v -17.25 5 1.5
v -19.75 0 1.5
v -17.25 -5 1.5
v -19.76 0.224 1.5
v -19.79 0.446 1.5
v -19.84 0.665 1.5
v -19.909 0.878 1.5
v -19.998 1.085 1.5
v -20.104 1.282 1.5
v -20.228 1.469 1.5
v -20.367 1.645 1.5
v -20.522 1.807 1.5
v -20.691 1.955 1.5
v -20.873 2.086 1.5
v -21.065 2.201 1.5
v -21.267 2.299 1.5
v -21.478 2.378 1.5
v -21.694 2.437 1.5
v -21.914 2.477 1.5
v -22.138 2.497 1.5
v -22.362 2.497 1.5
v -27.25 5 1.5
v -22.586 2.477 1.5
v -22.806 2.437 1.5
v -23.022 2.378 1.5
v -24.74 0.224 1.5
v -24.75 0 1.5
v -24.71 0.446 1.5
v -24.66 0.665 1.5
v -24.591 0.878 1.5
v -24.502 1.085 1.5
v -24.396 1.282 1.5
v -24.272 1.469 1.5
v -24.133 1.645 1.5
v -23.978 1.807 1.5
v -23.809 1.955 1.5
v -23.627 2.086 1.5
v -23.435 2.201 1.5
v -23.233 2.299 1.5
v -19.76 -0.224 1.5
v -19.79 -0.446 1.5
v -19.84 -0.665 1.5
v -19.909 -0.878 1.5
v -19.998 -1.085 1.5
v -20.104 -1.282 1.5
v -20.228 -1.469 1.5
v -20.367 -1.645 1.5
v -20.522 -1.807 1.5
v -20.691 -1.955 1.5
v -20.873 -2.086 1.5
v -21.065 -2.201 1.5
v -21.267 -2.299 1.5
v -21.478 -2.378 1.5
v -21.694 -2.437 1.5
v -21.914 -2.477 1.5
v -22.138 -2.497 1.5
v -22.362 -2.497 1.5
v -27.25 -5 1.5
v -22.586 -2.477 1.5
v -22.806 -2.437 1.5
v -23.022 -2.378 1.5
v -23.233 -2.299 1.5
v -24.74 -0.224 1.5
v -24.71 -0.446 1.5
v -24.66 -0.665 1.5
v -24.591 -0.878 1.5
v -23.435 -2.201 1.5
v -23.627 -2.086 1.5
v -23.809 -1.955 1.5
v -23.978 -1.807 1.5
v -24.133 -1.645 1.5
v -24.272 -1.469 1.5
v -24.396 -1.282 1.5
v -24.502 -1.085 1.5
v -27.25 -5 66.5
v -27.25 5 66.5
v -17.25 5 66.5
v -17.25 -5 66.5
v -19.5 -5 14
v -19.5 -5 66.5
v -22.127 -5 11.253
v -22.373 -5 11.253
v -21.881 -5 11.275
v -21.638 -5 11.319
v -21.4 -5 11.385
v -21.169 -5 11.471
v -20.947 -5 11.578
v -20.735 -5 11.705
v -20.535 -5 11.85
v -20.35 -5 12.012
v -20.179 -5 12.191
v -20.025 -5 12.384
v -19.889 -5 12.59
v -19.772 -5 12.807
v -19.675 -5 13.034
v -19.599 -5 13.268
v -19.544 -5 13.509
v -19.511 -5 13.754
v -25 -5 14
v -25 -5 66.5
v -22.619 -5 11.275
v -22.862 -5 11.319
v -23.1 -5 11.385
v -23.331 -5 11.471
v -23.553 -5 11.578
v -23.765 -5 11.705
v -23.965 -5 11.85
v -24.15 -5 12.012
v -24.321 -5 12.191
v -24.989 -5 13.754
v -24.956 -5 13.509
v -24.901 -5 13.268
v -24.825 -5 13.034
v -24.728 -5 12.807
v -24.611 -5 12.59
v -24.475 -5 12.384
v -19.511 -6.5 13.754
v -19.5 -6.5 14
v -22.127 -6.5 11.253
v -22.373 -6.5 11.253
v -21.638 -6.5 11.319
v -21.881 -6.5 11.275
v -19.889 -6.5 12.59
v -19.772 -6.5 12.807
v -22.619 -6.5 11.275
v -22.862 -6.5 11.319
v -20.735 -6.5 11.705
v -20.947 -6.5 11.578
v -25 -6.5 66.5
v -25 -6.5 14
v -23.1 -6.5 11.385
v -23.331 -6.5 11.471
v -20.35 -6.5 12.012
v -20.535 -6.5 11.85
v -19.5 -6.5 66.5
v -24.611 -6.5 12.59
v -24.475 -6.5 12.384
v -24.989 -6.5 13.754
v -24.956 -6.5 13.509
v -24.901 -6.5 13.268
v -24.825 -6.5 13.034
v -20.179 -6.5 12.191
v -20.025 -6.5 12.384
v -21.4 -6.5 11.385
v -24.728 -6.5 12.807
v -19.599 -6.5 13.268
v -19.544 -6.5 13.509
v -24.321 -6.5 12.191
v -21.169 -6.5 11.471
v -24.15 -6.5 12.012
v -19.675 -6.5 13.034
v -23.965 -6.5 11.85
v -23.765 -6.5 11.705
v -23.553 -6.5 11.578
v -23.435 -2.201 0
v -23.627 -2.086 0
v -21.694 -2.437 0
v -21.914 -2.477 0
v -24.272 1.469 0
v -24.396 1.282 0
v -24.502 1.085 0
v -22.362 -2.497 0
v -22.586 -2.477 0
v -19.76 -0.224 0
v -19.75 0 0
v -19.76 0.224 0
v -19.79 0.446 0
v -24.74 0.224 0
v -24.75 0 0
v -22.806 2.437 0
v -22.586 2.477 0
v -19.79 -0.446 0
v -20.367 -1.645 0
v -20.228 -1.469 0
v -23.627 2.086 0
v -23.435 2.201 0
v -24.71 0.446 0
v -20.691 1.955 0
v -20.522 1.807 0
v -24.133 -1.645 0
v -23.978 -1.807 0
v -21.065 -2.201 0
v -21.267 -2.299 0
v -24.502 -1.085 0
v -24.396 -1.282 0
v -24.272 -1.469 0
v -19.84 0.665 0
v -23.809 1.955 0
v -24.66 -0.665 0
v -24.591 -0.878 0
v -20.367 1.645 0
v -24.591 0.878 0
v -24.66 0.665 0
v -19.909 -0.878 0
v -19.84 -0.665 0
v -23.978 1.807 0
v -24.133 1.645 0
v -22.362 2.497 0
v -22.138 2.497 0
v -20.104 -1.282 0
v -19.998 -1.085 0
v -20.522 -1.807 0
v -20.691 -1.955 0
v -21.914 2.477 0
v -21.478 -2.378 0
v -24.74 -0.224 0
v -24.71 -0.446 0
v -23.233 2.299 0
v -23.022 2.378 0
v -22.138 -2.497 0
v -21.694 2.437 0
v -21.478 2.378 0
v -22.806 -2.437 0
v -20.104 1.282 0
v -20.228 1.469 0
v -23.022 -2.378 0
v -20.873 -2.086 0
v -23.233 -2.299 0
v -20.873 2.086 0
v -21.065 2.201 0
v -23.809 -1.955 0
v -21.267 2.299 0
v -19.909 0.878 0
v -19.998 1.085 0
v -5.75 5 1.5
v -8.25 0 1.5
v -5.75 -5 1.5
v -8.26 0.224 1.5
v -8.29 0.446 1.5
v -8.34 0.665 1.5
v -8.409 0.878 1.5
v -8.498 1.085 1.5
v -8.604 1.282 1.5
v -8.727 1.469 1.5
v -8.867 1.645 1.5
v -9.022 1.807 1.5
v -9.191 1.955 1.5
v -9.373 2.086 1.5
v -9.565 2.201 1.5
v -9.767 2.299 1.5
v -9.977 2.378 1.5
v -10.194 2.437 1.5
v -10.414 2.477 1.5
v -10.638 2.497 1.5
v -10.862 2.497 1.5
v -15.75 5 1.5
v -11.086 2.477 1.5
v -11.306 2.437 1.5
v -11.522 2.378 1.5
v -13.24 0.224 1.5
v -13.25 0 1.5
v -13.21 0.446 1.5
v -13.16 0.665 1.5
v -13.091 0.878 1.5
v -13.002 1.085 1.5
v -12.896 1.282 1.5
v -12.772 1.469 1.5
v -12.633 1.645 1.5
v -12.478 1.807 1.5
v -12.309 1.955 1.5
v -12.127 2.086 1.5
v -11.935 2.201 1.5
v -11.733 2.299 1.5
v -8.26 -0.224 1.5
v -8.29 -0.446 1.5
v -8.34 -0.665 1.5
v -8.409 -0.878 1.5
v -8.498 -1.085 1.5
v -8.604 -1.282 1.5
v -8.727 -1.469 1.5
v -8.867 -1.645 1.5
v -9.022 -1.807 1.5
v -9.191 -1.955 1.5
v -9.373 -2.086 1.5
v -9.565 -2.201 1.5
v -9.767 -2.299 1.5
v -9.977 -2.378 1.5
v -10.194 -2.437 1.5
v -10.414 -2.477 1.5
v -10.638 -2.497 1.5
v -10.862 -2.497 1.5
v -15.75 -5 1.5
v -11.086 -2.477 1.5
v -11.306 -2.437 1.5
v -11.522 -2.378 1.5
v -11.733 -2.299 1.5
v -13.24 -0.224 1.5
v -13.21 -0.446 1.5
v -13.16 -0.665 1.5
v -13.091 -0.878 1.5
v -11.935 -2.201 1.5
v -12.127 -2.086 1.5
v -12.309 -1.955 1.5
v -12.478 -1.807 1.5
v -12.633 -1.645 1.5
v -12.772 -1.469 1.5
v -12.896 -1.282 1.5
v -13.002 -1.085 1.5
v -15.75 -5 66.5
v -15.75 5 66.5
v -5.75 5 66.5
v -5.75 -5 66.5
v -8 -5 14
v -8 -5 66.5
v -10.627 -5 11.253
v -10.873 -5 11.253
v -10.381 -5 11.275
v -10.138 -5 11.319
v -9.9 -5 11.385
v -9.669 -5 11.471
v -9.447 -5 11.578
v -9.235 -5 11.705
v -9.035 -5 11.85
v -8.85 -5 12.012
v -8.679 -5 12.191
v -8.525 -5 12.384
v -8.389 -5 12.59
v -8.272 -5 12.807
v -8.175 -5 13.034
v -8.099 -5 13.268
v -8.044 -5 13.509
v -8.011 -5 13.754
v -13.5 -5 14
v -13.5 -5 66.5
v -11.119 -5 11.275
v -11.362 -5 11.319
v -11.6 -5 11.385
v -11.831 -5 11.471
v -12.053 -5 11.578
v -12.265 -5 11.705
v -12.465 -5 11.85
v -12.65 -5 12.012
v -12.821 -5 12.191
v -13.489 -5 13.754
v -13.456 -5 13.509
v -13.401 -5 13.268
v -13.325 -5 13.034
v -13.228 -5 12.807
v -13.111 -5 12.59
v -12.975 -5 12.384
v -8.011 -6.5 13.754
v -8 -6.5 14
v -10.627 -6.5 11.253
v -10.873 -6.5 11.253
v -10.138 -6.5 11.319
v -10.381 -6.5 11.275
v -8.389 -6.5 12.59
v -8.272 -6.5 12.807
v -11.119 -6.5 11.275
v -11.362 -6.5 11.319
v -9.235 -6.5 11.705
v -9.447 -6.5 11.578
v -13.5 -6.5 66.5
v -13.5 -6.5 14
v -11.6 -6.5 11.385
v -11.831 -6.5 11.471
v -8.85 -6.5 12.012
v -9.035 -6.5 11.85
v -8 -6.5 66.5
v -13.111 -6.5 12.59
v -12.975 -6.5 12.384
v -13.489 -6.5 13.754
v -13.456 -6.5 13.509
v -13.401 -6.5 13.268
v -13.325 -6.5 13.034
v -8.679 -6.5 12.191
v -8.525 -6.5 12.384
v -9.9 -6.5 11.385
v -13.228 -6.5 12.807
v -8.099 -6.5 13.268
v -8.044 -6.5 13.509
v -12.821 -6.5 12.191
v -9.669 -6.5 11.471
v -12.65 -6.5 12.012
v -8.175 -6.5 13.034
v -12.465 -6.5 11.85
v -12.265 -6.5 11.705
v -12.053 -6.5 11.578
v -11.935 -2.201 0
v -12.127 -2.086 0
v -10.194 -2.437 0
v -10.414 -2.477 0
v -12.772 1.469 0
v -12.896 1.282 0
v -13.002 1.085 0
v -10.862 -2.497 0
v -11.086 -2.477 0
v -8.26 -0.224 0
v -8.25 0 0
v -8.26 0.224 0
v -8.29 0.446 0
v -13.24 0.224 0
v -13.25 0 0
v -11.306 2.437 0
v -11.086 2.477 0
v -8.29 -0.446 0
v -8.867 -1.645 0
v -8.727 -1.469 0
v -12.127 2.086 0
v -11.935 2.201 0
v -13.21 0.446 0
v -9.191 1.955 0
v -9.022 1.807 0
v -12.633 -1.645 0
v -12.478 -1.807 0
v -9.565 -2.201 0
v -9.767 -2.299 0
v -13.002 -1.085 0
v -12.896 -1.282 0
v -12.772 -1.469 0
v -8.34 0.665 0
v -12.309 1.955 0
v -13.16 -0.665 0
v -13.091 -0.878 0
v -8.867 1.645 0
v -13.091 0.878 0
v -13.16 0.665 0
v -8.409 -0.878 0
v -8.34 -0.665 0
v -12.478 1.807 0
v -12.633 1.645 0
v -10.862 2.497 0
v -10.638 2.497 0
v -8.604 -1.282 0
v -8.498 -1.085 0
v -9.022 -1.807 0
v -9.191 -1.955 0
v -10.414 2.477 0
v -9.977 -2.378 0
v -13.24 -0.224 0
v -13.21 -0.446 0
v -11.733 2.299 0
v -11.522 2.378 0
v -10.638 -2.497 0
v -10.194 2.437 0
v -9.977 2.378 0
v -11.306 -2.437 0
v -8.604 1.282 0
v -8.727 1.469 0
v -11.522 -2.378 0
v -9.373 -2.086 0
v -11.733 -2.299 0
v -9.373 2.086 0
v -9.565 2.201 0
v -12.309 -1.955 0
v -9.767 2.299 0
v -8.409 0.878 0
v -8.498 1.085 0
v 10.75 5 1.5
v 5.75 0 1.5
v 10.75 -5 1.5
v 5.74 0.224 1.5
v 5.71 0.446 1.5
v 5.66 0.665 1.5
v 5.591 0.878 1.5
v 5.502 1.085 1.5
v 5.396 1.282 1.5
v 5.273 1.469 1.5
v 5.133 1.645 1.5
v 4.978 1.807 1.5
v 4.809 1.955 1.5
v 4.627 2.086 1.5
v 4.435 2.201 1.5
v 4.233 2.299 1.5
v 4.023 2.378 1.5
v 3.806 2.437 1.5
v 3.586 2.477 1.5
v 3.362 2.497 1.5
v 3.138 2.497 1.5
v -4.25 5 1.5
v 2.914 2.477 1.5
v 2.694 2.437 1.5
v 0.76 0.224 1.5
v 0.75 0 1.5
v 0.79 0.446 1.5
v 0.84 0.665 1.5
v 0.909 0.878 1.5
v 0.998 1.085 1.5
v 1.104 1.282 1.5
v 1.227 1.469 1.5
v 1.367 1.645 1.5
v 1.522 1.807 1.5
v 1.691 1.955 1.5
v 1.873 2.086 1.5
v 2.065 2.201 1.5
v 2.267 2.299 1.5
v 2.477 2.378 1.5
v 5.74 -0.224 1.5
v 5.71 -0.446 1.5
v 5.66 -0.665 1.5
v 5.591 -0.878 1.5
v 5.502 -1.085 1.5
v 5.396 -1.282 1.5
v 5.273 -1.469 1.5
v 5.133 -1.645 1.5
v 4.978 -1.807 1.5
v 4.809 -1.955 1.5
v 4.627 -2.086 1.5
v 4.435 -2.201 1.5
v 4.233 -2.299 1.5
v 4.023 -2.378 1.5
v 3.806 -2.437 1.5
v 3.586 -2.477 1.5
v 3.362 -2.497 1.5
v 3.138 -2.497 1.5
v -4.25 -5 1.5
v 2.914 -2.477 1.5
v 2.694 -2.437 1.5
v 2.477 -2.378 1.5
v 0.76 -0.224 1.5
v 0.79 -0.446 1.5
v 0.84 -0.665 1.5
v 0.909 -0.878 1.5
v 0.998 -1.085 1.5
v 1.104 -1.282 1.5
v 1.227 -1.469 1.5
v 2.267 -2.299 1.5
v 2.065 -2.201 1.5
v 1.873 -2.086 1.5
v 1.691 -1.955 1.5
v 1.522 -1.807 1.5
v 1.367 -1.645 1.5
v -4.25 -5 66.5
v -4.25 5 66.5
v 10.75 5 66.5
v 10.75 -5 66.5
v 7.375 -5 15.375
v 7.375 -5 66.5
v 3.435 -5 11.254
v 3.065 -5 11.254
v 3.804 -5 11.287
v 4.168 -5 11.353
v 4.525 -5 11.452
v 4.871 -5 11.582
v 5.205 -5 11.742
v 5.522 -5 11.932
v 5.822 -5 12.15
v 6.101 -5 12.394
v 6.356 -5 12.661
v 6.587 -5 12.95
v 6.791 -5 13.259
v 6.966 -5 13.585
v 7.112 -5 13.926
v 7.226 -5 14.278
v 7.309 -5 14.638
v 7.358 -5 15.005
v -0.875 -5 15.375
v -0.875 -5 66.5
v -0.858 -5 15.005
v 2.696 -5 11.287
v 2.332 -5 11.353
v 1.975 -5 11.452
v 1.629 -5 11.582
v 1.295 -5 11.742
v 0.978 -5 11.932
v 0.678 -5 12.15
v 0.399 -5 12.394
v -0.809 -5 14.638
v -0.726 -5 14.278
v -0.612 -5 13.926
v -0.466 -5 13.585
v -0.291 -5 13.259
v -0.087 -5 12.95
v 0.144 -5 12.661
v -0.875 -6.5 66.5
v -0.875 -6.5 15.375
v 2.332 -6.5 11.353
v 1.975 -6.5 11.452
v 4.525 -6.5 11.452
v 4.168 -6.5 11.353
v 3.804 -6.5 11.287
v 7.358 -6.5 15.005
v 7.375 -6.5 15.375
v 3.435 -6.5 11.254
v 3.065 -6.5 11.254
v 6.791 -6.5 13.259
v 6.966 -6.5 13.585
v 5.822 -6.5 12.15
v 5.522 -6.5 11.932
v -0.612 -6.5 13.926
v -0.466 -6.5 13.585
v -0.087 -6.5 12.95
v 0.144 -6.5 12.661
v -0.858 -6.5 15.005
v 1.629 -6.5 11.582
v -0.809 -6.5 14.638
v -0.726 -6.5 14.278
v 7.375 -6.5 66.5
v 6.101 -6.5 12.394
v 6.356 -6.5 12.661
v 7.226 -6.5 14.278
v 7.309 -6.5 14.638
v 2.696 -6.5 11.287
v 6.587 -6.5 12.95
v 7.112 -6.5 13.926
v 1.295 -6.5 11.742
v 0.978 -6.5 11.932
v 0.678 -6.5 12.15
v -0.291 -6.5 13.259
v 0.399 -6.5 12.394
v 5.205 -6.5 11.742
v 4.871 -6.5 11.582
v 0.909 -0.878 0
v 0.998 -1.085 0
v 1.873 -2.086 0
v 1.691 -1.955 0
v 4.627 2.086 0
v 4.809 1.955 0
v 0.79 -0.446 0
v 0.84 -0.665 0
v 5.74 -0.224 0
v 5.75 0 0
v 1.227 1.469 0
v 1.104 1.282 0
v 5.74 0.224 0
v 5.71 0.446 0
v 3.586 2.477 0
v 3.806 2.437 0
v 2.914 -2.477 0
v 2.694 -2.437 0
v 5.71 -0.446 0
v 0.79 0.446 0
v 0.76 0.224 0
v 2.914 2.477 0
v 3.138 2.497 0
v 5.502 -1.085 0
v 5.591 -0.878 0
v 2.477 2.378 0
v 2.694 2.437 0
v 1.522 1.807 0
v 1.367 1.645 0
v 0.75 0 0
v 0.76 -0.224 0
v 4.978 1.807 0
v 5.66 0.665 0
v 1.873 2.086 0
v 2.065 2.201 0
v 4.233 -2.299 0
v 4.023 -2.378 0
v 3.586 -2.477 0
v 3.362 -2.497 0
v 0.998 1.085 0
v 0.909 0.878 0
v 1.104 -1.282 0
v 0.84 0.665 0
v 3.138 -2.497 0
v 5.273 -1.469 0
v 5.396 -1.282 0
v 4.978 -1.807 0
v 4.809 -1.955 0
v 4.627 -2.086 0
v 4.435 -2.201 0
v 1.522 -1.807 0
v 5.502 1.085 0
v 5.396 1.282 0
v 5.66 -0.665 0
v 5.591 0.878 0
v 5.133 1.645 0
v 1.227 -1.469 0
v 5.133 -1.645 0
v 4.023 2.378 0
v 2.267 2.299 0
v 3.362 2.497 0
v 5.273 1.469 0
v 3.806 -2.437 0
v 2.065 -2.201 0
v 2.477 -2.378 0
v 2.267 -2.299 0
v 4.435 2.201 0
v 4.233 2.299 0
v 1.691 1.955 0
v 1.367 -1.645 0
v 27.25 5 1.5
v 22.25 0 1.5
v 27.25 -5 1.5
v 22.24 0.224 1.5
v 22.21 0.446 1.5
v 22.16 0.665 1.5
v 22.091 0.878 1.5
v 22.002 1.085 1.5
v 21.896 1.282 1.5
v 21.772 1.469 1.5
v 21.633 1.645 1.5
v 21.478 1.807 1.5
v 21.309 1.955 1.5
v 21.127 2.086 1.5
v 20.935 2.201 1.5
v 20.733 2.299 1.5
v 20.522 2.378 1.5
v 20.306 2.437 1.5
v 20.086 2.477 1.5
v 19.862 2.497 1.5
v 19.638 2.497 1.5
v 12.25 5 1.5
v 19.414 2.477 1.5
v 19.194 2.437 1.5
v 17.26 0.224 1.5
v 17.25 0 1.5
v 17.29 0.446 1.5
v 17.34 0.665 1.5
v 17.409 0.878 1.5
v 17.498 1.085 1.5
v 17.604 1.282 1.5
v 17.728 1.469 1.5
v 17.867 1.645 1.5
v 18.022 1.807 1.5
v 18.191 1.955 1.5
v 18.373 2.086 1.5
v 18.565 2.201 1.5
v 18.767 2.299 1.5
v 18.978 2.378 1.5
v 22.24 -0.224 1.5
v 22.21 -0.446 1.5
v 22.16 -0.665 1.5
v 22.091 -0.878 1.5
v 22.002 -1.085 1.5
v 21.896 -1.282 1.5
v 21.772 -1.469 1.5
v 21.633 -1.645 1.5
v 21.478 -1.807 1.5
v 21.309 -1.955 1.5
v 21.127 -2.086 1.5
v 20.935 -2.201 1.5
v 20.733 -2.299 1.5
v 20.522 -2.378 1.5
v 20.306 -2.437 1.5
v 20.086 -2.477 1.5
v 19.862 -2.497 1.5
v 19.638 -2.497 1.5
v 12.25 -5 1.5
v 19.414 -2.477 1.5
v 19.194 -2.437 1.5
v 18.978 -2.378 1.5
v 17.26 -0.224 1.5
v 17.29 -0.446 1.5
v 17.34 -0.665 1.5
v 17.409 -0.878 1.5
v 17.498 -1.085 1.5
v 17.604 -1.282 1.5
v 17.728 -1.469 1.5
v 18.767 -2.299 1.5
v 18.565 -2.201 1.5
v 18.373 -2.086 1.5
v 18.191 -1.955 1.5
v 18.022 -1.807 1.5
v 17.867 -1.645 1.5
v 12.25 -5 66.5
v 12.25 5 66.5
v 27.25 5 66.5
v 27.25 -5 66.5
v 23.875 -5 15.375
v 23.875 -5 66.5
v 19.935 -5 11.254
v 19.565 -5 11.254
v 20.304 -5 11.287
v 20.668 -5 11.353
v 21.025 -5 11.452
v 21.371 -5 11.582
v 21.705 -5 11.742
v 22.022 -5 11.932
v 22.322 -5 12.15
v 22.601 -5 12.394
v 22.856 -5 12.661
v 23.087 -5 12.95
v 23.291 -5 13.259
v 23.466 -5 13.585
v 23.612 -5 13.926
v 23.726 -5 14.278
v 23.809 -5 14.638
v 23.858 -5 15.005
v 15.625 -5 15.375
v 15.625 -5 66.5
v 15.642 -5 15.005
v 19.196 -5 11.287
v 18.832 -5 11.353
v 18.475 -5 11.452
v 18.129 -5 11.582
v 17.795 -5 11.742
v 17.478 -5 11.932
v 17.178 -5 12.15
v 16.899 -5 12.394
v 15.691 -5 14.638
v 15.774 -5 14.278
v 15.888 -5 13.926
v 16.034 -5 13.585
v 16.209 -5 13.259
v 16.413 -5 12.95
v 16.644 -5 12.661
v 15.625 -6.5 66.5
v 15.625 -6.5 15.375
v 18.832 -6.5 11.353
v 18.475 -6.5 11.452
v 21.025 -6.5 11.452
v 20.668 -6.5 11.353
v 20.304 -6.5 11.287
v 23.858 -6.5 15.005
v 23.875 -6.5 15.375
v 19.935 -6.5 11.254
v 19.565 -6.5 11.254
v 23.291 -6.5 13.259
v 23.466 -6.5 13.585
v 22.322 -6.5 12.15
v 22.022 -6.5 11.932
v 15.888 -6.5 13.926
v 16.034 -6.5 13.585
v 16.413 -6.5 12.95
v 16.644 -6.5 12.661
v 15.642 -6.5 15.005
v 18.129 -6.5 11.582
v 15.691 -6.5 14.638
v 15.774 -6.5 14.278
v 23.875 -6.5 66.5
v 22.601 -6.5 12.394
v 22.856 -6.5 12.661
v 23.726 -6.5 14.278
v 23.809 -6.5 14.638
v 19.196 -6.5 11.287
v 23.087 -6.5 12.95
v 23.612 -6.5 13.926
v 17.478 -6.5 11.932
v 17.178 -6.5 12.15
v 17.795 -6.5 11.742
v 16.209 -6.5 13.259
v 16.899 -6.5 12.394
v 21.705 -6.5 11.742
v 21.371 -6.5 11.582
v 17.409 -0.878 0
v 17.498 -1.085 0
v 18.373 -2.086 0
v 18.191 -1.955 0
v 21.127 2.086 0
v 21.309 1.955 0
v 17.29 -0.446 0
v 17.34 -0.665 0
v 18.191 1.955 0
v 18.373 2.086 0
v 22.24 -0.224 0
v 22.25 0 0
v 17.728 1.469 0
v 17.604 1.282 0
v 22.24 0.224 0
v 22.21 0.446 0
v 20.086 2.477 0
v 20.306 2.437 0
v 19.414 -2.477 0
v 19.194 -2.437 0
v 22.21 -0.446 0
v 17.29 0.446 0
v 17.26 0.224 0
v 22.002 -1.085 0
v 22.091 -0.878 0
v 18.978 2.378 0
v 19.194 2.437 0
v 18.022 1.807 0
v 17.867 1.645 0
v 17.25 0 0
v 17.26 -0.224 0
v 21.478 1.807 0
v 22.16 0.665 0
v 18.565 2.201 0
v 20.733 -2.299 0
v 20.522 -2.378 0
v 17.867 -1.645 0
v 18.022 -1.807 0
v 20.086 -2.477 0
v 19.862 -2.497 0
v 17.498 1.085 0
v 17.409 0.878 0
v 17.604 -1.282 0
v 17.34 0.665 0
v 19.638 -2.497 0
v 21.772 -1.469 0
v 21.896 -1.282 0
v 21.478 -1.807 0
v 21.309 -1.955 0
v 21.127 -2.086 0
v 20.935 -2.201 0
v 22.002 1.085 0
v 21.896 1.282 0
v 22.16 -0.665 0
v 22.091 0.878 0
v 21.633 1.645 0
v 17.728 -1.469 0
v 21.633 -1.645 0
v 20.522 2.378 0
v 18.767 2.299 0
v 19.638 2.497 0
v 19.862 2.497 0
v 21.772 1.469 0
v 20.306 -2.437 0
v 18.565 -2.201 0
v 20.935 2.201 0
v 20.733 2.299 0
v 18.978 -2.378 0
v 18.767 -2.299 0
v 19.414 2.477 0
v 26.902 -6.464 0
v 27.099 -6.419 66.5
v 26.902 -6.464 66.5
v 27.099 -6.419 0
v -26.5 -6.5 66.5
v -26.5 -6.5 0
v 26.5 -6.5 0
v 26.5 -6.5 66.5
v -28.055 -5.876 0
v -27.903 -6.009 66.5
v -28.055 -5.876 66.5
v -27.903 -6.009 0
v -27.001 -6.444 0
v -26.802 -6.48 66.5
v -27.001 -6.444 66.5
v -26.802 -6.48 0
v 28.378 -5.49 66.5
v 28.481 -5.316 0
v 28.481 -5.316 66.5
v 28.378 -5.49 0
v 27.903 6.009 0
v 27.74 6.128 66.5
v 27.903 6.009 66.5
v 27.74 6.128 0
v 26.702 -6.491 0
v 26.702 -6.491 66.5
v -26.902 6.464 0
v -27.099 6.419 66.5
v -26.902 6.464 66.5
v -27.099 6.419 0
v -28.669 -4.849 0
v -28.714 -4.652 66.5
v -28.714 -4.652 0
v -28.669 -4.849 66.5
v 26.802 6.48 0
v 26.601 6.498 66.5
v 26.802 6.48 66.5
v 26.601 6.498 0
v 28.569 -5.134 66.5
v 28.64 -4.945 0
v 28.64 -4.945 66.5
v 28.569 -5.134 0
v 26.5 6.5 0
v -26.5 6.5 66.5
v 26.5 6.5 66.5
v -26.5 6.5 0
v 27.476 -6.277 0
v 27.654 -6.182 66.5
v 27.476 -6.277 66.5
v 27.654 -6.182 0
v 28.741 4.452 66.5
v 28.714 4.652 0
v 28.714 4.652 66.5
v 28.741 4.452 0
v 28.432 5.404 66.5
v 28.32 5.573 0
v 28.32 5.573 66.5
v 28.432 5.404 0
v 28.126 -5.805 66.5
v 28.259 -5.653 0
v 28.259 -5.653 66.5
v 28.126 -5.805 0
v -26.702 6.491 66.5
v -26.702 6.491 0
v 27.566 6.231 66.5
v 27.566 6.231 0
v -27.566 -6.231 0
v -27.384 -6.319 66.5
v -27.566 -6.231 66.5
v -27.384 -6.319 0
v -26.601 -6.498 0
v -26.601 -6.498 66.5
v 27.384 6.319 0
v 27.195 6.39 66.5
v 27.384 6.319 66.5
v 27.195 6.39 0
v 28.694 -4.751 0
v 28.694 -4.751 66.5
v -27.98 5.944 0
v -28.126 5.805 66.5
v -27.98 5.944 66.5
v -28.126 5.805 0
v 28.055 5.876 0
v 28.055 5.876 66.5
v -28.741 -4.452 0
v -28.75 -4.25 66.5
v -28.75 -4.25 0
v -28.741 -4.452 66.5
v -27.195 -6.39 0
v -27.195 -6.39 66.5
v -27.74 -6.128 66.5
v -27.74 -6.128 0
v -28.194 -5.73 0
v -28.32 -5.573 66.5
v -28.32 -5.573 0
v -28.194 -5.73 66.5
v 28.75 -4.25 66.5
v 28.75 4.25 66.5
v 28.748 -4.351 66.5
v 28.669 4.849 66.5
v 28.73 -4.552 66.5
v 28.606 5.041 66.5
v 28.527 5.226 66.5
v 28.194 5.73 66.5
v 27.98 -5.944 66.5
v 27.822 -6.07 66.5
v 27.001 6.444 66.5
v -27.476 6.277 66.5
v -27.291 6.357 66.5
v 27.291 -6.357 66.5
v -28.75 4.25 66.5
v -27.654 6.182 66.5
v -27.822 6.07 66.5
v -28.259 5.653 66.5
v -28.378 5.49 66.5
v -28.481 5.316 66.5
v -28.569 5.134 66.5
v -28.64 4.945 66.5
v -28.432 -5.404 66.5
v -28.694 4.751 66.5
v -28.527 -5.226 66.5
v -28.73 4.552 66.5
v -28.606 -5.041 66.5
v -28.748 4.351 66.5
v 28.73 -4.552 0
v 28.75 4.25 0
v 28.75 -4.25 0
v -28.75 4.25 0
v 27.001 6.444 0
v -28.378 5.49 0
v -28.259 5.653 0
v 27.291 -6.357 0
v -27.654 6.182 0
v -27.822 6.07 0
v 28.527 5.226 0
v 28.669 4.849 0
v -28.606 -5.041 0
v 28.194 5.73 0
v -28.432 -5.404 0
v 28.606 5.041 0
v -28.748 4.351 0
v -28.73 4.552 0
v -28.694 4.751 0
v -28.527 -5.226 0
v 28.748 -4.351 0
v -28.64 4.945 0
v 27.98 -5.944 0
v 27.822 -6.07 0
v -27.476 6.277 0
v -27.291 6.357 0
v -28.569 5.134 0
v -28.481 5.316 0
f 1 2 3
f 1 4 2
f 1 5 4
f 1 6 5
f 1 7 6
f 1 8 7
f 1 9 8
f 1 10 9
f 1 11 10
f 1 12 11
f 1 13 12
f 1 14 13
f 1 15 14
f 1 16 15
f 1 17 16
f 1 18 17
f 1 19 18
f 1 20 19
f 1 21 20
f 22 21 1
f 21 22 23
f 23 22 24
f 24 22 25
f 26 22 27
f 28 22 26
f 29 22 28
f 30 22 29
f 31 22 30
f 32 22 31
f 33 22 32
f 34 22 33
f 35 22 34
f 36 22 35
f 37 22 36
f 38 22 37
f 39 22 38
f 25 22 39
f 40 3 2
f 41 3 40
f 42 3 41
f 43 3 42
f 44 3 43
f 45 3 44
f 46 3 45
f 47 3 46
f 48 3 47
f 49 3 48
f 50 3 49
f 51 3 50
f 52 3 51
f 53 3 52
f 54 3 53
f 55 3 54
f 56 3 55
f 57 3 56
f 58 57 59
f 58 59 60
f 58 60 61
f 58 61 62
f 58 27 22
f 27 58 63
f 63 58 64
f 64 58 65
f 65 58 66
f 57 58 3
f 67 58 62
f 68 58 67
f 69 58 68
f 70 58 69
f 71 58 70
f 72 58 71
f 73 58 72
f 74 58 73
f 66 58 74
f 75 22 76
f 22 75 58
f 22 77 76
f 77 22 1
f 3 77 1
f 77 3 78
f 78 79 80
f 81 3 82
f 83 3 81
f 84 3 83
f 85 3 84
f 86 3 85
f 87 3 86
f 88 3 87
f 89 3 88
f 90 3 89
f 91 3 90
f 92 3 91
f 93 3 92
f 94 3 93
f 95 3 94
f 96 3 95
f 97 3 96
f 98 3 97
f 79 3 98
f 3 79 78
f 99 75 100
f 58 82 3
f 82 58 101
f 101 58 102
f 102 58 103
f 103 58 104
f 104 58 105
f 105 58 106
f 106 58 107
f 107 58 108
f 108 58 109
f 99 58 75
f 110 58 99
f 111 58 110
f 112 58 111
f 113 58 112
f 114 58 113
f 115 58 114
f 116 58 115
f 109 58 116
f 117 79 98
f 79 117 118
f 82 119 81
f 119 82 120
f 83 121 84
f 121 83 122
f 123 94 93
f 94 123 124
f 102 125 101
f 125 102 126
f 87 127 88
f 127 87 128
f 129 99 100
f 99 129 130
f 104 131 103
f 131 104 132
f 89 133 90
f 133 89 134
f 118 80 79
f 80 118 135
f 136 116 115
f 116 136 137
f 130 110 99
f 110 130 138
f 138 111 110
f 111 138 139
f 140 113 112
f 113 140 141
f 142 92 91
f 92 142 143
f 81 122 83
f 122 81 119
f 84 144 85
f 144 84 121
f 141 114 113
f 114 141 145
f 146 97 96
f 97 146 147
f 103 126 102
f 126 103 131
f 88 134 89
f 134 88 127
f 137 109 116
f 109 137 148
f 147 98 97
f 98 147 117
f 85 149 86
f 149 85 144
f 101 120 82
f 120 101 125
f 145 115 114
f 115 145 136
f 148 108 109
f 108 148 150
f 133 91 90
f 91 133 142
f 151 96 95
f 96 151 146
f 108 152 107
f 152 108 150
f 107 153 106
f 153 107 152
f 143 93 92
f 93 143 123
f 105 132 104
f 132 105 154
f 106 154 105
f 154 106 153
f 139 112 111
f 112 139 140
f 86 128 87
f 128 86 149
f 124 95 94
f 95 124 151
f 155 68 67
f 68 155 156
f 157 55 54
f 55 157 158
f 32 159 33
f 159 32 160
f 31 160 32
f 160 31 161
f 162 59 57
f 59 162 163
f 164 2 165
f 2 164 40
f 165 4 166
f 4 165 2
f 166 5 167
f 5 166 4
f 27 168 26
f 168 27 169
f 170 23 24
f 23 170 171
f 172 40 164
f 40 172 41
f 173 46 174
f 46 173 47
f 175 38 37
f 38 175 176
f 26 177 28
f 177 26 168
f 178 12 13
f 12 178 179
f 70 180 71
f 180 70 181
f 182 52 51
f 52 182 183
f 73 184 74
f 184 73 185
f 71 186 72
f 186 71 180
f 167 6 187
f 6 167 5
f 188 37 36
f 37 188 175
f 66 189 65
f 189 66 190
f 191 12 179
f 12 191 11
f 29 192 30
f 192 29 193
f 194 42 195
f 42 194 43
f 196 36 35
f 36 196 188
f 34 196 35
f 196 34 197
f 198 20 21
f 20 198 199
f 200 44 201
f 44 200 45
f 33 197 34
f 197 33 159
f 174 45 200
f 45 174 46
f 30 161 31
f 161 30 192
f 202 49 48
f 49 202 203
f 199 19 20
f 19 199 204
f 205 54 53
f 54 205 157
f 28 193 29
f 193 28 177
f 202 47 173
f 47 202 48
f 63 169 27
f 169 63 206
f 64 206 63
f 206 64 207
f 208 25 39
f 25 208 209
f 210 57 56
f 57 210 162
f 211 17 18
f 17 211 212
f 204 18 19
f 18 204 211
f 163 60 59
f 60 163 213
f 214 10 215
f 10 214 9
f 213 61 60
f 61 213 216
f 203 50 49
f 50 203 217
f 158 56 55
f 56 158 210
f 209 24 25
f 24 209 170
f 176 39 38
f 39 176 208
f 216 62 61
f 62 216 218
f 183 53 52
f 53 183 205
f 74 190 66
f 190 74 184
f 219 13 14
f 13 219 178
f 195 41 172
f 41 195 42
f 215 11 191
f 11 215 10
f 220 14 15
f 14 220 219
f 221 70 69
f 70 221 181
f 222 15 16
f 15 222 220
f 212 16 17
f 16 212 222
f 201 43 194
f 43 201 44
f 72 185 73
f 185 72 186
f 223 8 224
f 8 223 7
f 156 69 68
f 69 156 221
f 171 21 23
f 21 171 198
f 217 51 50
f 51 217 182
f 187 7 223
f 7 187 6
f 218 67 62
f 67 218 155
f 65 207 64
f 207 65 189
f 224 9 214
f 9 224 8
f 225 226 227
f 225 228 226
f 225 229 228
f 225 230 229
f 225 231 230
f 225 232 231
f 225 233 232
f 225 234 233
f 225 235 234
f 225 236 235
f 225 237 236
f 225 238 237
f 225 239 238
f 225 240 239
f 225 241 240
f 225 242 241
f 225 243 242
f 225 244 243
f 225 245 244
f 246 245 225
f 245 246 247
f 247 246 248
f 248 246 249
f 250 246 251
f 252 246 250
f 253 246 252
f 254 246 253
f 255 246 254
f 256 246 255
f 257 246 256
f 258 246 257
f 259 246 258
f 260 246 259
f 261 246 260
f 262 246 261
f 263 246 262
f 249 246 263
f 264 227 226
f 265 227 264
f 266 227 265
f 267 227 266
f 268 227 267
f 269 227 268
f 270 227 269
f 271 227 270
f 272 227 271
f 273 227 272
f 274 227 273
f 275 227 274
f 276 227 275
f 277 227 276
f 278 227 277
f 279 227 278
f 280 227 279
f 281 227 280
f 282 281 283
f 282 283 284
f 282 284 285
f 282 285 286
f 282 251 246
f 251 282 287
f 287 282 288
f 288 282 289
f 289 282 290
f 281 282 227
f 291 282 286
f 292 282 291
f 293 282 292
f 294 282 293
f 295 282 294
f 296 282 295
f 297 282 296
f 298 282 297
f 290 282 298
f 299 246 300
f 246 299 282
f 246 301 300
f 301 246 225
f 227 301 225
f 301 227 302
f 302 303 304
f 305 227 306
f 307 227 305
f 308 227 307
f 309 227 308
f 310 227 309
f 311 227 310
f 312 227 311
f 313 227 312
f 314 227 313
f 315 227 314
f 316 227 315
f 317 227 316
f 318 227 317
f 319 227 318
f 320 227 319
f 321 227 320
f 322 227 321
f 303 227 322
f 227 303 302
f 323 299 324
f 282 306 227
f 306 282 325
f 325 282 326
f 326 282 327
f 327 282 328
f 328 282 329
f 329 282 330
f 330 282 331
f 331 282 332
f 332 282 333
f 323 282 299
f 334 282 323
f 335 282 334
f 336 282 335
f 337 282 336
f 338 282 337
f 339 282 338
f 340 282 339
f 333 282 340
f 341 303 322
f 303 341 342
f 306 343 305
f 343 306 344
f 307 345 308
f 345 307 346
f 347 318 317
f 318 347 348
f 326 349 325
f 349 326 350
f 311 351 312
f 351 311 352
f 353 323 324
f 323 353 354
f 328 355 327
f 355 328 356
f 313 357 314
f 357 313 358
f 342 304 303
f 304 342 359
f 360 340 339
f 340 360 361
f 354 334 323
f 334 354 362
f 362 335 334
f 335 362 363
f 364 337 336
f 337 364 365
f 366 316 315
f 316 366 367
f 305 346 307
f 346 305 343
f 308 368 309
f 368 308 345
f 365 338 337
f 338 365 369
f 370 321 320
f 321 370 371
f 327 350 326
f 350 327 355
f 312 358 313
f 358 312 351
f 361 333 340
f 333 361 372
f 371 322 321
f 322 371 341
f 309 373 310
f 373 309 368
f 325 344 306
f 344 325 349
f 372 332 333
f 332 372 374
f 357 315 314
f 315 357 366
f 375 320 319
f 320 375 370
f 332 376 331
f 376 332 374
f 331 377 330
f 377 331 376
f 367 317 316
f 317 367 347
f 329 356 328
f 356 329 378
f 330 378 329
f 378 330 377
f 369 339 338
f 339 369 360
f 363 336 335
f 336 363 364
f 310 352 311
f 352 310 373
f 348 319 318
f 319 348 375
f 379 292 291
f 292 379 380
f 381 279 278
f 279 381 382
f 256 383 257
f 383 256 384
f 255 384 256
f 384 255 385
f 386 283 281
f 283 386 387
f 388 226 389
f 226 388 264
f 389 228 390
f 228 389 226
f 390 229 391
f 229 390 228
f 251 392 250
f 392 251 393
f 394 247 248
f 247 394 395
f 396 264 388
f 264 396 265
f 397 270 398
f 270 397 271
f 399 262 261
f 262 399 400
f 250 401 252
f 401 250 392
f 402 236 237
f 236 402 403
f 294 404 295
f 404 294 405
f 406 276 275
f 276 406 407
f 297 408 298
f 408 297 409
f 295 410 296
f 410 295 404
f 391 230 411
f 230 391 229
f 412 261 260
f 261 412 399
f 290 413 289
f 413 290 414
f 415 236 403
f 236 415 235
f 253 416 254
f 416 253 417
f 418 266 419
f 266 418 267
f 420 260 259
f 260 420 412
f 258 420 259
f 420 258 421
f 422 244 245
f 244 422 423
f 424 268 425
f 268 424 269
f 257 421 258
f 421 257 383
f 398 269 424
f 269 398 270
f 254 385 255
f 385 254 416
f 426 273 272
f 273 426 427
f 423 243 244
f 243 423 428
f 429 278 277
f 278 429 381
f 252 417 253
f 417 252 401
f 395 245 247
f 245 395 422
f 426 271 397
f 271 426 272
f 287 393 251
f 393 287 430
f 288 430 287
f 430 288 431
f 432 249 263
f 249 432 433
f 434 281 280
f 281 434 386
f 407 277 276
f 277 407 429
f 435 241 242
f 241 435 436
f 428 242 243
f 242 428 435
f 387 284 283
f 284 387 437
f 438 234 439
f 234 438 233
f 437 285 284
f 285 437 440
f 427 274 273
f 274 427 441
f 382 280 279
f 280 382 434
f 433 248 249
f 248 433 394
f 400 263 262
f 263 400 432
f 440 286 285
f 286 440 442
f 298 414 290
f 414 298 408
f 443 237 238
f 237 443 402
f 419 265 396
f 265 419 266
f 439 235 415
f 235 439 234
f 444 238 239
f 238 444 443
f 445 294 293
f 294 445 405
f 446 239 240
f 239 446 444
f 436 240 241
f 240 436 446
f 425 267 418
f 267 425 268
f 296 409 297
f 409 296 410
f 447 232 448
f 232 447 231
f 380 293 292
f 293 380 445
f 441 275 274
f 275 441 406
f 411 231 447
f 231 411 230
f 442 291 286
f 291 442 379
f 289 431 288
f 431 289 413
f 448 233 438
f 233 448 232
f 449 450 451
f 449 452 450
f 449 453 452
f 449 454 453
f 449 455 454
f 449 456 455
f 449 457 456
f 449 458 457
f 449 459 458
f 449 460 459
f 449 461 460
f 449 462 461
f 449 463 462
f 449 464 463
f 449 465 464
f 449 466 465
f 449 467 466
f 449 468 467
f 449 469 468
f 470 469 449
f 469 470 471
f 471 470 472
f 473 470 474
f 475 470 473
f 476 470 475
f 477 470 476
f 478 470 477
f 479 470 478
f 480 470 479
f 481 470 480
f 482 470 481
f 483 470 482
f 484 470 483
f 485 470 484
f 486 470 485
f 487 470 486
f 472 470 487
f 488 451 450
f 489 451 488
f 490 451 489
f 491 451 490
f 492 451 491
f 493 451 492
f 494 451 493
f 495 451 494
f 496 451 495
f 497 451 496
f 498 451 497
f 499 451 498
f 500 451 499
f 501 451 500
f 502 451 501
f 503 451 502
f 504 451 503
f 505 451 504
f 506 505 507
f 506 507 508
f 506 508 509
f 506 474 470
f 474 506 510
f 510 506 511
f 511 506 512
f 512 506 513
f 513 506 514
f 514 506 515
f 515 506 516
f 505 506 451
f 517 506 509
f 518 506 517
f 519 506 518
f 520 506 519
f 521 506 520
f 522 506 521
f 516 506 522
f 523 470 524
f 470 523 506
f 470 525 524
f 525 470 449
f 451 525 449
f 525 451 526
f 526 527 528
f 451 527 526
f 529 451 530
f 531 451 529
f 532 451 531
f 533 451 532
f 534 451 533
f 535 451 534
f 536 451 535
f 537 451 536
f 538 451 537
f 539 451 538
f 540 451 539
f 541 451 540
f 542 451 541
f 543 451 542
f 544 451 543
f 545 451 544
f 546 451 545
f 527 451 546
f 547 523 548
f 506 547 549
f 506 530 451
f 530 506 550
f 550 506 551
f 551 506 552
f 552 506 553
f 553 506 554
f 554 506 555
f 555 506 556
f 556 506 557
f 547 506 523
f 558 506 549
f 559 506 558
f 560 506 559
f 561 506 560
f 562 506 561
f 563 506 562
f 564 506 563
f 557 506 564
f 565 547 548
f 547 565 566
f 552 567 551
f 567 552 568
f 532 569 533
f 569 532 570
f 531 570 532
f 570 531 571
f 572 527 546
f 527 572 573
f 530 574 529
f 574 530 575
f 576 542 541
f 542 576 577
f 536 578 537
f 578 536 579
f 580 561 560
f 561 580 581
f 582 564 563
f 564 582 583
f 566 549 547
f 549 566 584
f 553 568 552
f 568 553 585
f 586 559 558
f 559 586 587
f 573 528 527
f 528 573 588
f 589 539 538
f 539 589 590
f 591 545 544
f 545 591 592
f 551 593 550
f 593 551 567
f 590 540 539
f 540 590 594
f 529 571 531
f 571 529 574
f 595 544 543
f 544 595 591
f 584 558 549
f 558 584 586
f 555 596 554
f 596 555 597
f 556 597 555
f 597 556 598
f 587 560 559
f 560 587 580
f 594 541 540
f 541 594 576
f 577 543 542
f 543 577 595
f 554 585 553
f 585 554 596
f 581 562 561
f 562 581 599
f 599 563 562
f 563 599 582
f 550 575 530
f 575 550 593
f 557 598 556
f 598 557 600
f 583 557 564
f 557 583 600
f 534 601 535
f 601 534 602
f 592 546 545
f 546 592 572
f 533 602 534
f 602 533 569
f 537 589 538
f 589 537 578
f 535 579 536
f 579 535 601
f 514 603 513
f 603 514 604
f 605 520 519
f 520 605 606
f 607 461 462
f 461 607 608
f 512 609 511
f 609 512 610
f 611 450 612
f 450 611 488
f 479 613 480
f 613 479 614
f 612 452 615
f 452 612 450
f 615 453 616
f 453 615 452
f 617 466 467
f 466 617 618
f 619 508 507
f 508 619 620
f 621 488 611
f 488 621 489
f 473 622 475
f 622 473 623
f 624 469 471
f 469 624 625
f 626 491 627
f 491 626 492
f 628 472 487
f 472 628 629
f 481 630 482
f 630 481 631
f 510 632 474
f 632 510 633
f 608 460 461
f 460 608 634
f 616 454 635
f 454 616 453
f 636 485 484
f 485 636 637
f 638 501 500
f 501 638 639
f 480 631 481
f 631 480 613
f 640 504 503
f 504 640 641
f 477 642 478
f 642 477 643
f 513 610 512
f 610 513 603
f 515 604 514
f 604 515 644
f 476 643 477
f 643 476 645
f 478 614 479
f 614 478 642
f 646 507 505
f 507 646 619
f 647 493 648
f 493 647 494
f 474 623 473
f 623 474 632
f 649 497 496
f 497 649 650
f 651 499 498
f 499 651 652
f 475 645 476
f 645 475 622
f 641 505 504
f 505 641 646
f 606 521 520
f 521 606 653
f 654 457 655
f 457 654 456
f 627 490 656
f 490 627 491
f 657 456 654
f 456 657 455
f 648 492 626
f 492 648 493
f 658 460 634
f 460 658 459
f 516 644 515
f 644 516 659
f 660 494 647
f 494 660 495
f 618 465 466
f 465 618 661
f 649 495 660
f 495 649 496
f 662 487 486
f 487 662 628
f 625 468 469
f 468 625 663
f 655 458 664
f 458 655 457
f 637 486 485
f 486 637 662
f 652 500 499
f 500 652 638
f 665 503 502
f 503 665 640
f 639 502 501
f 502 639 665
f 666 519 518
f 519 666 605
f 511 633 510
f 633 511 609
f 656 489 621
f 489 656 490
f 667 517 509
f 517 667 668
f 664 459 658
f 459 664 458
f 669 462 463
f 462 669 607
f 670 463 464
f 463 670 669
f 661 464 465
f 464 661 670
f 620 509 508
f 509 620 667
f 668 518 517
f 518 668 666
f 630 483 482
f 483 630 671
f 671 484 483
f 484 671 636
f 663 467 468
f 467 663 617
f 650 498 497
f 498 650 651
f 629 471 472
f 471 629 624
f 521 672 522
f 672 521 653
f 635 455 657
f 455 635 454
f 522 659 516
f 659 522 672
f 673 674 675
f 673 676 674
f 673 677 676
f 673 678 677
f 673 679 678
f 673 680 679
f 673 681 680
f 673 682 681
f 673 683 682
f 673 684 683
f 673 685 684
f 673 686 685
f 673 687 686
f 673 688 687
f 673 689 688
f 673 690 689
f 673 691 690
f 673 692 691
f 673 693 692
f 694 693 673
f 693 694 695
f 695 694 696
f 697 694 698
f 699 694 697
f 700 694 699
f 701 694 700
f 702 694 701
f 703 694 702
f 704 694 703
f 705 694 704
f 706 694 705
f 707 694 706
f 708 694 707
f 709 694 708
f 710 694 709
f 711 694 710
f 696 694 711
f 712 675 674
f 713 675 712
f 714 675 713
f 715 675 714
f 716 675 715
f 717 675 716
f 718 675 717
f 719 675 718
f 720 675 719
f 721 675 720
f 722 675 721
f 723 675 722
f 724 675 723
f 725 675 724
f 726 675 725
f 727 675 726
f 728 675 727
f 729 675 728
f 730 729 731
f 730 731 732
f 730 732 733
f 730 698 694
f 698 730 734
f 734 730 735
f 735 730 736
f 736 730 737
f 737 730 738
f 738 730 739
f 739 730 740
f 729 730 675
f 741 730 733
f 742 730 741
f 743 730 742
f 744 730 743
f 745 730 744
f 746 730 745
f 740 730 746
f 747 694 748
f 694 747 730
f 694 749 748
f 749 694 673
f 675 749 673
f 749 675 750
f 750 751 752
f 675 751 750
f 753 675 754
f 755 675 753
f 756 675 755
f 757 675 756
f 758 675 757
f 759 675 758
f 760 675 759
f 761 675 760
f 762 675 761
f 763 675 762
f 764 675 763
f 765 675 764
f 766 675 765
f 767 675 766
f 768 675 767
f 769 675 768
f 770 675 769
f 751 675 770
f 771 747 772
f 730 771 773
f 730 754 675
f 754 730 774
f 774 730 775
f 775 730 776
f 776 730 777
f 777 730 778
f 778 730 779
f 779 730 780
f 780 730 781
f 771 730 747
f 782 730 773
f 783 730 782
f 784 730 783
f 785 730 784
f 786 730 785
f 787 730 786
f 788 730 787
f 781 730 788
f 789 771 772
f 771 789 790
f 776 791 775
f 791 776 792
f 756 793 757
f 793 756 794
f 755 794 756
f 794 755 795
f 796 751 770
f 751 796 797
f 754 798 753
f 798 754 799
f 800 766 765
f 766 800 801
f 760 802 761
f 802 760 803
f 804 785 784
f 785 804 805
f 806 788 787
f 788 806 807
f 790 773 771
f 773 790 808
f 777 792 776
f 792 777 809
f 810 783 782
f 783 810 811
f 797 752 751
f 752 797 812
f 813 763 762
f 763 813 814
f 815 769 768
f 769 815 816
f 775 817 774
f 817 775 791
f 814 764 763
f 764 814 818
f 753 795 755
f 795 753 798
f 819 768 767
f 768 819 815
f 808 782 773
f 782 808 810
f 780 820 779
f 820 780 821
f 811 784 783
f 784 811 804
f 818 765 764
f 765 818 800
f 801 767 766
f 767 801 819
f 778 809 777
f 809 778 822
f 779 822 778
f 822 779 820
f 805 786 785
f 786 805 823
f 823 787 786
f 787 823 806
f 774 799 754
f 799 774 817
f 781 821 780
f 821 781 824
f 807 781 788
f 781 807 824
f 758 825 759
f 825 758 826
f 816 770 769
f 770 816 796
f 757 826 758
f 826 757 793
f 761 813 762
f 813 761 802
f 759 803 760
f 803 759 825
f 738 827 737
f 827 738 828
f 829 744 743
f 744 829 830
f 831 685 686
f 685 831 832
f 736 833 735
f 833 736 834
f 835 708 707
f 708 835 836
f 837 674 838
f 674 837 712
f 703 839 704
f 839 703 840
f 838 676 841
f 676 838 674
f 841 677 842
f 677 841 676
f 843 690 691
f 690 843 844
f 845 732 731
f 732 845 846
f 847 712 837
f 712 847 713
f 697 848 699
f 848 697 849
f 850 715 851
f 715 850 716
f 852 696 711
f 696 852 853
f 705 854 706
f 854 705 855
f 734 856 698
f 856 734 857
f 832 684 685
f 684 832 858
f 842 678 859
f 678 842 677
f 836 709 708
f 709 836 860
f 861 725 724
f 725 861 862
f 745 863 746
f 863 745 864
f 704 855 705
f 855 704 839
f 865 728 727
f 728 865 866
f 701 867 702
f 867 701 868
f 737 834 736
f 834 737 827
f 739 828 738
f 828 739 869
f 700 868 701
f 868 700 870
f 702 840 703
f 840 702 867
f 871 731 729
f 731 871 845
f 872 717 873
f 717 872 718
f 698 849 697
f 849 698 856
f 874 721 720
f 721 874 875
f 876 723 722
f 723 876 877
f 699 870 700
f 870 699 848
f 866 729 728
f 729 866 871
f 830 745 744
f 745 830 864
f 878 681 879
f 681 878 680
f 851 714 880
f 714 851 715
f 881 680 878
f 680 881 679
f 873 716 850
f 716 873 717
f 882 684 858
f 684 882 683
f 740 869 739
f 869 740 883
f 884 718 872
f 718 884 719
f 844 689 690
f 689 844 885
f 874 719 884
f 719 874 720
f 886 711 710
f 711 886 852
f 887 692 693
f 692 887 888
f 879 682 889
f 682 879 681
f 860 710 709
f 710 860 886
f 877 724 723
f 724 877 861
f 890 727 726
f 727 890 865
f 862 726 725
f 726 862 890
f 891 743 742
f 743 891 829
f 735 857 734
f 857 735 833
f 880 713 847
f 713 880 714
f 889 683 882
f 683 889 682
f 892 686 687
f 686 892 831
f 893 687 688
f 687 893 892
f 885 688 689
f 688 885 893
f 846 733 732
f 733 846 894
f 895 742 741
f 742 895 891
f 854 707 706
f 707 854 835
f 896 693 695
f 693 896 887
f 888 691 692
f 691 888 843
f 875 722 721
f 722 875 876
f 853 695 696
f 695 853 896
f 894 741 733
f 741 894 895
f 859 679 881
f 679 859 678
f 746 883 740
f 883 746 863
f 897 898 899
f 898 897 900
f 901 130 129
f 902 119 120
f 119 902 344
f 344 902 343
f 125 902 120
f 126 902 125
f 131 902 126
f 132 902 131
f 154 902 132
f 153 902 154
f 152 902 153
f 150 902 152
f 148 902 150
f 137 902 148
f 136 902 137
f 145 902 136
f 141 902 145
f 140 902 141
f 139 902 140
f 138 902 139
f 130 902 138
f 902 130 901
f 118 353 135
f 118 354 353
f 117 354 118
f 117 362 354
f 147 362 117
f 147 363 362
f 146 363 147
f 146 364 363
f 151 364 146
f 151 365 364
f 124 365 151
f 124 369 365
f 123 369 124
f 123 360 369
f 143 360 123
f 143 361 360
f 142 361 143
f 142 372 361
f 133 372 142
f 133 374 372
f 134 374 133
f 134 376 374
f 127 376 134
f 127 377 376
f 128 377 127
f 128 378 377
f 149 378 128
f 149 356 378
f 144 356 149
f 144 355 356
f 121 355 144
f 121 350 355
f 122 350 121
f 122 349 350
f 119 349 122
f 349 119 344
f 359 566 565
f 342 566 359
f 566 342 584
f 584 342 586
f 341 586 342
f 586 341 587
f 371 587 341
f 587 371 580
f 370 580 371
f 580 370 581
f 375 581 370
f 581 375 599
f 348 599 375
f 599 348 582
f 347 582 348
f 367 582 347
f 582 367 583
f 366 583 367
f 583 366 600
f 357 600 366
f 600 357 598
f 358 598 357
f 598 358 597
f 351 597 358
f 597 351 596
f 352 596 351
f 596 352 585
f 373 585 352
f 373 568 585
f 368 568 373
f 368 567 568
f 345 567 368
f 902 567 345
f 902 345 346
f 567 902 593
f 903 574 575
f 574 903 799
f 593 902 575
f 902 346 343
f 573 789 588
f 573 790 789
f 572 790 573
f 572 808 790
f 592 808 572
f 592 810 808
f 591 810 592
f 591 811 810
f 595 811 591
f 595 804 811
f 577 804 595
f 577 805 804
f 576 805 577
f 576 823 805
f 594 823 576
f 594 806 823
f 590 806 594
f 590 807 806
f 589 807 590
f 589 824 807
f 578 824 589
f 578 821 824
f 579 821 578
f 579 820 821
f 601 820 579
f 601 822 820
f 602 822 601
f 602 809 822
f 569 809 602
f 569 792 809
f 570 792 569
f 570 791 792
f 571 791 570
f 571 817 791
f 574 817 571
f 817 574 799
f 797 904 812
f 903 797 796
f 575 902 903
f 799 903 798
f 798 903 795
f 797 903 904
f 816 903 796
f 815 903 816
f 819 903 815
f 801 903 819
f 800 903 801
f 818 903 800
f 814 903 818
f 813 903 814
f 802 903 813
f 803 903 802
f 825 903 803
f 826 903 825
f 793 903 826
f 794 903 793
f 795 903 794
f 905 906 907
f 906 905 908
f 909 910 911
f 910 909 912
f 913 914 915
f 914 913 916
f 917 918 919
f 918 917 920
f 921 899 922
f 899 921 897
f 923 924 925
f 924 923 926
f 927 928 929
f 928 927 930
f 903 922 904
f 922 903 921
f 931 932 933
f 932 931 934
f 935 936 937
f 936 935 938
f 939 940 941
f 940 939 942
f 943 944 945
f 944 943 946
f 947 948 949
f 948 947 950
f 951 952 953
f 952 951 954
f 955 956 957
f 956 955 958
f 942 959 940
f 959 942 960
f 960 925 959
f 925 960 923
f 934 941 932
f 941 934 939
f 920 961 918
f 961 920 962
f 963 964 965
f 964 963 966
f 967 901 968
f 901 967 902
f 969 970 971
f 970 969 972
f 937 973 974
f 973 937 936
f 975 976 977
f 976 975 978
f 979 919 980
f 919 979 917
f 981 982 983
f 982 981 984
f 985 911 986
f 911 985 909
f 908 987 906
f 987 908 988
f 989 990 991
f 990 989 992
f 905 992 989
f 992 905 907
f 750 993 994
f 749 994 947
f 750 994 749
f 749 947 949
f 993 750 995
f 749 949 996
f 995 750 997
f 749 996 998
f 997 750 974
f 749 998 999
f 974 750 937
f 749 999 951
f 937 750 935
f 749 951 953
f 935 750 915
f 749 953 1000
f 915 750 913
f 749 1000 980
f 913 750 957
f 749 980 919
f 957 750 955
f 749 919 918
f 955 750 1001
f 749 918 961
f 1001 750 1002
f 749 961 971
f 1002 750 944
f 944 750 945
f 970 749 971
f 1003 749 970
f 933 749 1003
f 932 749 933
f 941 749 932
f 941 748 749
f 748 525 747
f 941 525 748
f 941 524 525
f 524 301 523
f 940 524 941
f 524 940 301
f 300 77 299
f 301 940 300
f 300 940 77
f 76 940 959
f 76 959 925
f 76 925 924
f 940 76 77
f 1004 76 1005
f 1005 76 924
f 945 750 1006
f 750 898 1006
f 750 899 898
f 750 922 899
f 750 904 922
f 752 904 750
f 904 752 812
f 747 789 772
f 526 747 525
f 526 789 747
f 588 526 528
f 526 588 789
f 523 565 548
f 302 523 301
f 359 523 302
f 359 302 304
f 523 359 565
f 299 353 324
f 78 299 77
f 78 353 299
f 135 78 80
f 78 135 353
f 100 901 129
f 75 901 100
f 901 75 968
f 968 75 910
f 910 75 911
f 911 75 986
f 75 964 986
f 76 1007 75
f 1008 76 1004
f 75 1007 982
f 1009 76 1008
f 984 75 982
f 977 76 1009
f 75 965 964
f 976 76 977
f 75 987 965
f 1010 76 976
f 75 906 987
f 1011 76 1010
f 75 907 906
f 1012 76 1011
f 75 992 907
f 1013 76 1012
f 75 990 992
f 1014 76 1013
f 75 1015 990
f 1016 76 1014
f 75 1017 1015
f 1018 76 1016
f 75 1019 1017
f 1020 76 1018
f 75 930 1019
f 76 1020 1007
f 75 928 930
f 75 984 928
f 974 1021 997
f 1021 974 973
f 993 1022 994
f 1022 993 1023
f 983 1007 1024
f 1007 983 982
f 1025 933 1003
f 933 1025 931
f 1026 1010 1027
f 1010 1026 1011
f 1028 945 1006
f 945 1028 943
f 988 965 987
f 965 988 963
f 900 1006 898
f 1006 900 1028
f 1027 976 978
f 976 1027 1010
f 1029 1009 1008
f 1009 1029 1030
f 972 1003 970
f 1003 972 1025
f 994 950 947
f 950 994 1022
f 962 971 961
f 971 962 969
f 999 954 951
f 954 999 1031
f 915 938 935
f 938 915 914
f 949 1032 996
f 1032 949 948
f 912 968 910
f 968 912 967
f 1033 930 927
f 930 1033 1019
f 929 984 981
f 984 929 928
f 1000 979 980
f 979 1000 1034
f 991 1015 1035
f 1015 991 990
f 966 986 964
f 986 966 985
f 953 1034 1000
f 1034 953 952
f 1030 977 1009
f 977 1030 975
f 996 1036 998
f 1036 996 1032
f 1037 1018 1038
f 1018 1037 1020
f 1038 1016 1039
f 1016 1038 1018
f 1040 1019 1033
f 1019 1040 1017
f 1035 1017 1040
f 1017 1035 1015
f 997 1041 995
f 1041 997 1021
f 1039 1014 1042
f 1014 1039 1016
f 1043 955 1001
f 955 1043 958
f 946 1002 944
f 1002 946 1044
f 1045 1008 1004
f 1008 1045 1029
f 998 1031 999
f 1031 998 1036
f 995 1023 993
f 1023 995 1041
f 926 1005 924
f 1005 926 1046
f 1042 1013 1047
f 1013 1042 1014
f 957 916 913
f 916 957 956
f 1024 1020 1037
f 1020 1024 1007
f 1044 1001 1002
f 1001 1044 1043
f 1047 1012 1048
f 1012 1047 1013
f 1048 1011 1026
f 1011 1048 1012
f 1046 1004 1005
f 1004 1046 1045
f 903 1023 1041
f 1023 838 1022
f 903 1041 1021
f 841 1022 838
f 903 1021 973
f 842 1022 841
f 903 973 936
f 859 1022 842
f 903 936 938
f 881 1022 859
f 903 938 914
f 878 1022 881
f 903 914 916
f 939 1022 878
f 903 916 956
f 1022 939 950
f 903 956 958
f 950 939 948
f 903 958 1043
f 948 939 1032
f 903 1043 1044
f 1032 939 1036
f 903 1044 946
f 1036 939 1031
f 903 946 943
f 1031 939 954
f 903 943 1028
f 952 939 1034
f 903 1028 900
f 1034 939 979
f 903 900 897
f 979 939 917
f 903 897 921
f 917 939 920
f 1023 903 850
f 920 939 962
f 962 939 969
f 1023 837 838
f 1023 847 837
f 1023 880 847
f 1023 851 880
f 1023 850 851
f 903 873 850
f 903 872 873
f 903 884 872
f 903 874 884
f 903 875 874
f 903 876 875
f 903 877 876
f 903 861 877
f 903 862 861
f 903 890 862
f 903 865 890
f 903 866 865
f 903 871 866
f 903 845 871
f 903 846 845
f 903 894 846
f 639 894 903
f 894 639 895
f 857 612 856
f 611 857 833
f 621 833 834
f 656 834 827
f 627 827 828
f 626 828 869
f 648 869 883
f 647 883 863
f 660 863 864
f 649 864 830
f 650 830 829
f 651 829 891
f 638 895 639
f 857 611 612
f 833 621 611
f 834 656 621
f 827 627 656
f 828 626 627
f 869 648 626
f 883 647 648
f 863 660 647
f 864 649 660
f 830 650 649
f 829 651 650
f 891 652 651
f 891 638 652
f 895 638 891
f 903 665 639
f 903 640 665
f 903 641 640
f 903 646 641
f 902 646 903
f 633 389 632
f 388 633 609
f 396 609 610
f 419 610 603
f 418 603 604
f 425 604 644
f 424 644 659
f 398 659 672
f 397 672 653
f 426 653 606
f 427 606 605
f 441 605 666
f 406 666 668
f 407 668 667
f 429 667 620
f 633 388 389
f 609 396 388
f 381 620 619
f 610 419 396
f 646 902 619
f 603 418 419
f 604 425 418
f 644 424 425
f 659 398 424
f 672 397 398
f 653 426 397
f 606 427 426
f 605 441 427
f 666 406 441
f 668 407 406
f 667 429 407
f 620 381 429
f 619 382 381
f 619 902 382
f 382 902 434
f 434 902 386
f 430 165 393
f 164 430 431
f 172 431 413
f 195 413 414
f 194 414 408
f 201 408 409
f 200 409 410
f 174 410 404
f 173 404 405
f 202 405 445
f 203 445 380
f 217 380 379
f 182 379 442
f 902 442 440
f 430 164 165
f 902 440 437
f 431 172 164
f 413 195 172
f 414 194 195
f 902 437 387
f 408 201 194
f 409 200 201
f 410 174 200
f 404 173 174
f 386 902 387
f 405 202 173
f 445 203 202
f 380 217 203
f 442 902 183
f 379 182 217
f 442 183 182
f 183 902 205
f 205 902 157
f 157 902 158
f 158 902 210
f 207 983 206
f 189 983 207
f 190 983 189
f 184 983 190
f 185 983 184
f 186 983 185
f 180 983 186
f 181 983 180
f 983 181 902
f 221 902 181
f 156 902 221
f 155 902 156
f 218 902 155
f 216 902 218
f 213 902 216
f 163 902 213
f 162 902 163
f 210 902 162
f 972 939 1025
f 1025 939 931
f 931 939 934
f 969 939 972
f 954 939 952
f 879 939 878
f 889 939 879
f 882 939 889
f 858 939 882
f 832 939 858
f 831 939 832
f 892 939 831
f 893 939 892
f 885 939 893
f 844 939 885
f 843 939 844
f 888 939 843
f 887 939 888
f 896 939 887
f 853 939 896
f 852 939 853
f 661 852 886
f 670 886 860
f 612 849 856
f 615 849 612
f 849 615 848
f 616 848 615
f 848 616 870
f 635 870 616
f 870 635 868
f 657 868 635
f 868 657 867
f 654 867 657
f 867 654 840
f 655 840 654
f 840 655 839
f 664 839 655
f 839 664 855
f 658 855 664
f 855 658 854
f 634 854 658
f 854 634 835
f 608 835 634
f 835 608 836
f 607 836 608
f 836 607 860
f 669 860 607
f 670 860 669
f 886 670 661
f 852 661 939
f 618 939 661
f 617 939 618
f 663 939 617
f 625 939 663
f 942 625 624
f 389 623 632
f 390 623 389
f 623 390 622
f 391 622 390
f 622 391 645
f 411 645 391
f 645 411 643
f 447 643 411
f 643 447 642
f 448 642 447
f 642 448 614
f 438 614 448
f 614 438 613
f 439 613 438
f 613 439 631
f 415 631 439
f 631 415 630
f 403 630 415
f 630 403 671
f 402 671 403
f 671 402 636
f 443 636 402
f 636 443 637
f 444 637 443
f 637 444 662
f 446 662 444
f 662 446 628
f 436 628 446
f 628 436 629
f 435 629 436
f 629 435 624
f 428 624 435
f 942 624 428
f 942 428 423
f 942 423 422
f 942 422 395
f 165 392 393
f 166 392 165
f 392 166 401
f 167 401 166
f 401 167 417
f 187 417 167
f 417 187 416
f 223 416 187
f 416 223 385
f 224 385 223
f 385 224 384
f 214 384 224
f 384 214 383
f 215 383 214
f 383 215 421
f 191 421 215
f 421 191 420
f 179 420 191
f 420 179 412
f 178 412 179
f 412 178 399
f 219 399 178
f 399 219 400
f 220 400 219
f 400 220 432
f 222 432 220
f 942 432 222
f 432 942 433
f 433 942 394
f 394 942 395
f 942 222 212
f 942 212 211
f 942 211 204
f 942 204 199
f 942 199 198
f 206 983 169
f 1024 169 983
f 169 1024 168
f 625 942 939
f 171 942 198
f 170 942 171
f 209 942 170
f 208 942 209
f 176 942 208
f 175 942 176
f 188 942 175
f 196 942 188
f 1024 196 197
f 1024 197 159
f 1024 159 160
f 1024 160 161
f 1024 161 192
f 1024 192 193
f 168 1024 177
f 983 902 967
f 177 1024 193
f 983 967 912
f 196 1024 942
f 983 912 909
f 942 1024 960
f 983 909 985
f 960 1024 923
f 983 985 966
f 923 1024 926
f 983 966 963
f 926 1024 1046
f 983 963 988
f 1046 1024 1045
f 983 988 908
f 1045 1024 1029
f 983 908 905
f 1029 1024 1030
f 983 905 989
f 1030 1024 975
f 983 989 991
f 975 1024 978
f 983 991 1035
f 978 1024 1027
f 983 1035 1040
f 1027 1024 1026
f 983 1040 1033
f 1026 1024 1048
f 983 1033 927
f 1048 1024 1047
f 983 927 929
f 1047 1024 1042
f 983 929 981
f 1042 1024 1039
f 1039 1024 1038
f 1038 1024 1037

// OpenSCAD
/********************************************************
 * Ned Bait Holder - vsergeev
 * https://github.com/vsergeev/3d-ned-bait-holder
 * CC-BY-4.0
 *
 * Release Notes
 *  * v1.1 - 03/12/2021
 *      * Add corner radius to box.
 *  * v1.0 - 11/01/2020
 *      * Initial release.
 ********************************************************/

/* [Basic] */

// in mm
slot_widths = [10, 10, 15, 15];

// in mm
slot_height = 65;

// in mm
slot_depth = 10;

// in mm
wall_thickness = 1.5;

/* [Advanced] */

// in mm
drainage_hole_diameter = 5;

// fraction from 0 to 1
cutout_relative_diameter = 0.55;

// fraction from 0 to 1
cutout_relative_offset = 0.15;

// in mm
corner_radius = 1.5 * wall_thickness;

/* [Hidden] */

$fn = 70;

fudge_factor = 0.1;

/******************************************************************************/
/* Helper Functions */
/******************************************************************************/

function sum(v, i = 0) = (i < len(v)) ? v[i] + sum(v, i + 1) : 0;

function cumsum(v, i) = (i < 0) ? 0 : v[i] + cumsum(v, i - 1);

/******************************************************************************/
/* Derived Parameters */
/******************************************************************************/

width = sum(slot_widths) + (len(slot_widths) + 1) * wall_thickness;

/******************************************************************************/
/* 2D Profiles */
/******************************************************************************/

module ned_bait_profile_box() {
    offset(r=corner_radius)
        offset(delta=-corner_radius)
            square([width, slot_depth + 2 * wall_thickness], center=true);
}

module ned_bait_profile_slot(i) {
    square([slot_widths[i], slot_depth], center=true);
}

module ned_bait_profile_cutout(i) {
    cutout_width = cutout_relative_diameter * slot_widths[i];

    union() {
        translate([0, cutout_width / 2])
            circle(d = cutout_width);

        translate([-cutout_width / 2, cutout_width / 2])
            square([cutout_width, slot_height]);
    }
}

module ned_bait_profile_drainage_hole() {
    circle(d = drainage_hole_diameter);
}

/******************************************************************************/
/* 3D Extrusions */
/******************************************************************************/

module ned_bait_holder() {
    slot_centers = [
        for (i = [0 : len(slot_widths) - 1])
            (-width / 2 + wall_thickness + slot_widths[i] / 2) + (wall_thickness * i + cumsum(slot_widths, i - 1))
    ];

    difference() {
        /* Base */
        linear_extrude(slot_height + wall_thickness)
            ned_bait_profile_box();

        for (i = [0 : len(slot_widths) - 1]) {
            /* Slot */
            translate([slot_centers[i], 0, wall_thickness])
                linear_extrude(slot_height + fudge_factor)
                    ned_bait_profile_slot(i);

            /* Slot Cutout */
            translate([slot_centers[i], -(slot_depth - fudge_factor) / 2, cutout_relative_offset * slot_height + wall_thickness])
                rotate([90, 0, 0])
                    linear_extrude(wall_thickness + fudge_factor)
                        ned_bait_profile_cutout(i);

            /* Drainage Hole */
            translate([slot_centers[i], 0, -fudge_factor/2])
                linear_extrude(wall_thickness + fudge_factor)
                  ned_bait_profile_drainage_hole();
        }
    }
}

ned_bait_holder();
